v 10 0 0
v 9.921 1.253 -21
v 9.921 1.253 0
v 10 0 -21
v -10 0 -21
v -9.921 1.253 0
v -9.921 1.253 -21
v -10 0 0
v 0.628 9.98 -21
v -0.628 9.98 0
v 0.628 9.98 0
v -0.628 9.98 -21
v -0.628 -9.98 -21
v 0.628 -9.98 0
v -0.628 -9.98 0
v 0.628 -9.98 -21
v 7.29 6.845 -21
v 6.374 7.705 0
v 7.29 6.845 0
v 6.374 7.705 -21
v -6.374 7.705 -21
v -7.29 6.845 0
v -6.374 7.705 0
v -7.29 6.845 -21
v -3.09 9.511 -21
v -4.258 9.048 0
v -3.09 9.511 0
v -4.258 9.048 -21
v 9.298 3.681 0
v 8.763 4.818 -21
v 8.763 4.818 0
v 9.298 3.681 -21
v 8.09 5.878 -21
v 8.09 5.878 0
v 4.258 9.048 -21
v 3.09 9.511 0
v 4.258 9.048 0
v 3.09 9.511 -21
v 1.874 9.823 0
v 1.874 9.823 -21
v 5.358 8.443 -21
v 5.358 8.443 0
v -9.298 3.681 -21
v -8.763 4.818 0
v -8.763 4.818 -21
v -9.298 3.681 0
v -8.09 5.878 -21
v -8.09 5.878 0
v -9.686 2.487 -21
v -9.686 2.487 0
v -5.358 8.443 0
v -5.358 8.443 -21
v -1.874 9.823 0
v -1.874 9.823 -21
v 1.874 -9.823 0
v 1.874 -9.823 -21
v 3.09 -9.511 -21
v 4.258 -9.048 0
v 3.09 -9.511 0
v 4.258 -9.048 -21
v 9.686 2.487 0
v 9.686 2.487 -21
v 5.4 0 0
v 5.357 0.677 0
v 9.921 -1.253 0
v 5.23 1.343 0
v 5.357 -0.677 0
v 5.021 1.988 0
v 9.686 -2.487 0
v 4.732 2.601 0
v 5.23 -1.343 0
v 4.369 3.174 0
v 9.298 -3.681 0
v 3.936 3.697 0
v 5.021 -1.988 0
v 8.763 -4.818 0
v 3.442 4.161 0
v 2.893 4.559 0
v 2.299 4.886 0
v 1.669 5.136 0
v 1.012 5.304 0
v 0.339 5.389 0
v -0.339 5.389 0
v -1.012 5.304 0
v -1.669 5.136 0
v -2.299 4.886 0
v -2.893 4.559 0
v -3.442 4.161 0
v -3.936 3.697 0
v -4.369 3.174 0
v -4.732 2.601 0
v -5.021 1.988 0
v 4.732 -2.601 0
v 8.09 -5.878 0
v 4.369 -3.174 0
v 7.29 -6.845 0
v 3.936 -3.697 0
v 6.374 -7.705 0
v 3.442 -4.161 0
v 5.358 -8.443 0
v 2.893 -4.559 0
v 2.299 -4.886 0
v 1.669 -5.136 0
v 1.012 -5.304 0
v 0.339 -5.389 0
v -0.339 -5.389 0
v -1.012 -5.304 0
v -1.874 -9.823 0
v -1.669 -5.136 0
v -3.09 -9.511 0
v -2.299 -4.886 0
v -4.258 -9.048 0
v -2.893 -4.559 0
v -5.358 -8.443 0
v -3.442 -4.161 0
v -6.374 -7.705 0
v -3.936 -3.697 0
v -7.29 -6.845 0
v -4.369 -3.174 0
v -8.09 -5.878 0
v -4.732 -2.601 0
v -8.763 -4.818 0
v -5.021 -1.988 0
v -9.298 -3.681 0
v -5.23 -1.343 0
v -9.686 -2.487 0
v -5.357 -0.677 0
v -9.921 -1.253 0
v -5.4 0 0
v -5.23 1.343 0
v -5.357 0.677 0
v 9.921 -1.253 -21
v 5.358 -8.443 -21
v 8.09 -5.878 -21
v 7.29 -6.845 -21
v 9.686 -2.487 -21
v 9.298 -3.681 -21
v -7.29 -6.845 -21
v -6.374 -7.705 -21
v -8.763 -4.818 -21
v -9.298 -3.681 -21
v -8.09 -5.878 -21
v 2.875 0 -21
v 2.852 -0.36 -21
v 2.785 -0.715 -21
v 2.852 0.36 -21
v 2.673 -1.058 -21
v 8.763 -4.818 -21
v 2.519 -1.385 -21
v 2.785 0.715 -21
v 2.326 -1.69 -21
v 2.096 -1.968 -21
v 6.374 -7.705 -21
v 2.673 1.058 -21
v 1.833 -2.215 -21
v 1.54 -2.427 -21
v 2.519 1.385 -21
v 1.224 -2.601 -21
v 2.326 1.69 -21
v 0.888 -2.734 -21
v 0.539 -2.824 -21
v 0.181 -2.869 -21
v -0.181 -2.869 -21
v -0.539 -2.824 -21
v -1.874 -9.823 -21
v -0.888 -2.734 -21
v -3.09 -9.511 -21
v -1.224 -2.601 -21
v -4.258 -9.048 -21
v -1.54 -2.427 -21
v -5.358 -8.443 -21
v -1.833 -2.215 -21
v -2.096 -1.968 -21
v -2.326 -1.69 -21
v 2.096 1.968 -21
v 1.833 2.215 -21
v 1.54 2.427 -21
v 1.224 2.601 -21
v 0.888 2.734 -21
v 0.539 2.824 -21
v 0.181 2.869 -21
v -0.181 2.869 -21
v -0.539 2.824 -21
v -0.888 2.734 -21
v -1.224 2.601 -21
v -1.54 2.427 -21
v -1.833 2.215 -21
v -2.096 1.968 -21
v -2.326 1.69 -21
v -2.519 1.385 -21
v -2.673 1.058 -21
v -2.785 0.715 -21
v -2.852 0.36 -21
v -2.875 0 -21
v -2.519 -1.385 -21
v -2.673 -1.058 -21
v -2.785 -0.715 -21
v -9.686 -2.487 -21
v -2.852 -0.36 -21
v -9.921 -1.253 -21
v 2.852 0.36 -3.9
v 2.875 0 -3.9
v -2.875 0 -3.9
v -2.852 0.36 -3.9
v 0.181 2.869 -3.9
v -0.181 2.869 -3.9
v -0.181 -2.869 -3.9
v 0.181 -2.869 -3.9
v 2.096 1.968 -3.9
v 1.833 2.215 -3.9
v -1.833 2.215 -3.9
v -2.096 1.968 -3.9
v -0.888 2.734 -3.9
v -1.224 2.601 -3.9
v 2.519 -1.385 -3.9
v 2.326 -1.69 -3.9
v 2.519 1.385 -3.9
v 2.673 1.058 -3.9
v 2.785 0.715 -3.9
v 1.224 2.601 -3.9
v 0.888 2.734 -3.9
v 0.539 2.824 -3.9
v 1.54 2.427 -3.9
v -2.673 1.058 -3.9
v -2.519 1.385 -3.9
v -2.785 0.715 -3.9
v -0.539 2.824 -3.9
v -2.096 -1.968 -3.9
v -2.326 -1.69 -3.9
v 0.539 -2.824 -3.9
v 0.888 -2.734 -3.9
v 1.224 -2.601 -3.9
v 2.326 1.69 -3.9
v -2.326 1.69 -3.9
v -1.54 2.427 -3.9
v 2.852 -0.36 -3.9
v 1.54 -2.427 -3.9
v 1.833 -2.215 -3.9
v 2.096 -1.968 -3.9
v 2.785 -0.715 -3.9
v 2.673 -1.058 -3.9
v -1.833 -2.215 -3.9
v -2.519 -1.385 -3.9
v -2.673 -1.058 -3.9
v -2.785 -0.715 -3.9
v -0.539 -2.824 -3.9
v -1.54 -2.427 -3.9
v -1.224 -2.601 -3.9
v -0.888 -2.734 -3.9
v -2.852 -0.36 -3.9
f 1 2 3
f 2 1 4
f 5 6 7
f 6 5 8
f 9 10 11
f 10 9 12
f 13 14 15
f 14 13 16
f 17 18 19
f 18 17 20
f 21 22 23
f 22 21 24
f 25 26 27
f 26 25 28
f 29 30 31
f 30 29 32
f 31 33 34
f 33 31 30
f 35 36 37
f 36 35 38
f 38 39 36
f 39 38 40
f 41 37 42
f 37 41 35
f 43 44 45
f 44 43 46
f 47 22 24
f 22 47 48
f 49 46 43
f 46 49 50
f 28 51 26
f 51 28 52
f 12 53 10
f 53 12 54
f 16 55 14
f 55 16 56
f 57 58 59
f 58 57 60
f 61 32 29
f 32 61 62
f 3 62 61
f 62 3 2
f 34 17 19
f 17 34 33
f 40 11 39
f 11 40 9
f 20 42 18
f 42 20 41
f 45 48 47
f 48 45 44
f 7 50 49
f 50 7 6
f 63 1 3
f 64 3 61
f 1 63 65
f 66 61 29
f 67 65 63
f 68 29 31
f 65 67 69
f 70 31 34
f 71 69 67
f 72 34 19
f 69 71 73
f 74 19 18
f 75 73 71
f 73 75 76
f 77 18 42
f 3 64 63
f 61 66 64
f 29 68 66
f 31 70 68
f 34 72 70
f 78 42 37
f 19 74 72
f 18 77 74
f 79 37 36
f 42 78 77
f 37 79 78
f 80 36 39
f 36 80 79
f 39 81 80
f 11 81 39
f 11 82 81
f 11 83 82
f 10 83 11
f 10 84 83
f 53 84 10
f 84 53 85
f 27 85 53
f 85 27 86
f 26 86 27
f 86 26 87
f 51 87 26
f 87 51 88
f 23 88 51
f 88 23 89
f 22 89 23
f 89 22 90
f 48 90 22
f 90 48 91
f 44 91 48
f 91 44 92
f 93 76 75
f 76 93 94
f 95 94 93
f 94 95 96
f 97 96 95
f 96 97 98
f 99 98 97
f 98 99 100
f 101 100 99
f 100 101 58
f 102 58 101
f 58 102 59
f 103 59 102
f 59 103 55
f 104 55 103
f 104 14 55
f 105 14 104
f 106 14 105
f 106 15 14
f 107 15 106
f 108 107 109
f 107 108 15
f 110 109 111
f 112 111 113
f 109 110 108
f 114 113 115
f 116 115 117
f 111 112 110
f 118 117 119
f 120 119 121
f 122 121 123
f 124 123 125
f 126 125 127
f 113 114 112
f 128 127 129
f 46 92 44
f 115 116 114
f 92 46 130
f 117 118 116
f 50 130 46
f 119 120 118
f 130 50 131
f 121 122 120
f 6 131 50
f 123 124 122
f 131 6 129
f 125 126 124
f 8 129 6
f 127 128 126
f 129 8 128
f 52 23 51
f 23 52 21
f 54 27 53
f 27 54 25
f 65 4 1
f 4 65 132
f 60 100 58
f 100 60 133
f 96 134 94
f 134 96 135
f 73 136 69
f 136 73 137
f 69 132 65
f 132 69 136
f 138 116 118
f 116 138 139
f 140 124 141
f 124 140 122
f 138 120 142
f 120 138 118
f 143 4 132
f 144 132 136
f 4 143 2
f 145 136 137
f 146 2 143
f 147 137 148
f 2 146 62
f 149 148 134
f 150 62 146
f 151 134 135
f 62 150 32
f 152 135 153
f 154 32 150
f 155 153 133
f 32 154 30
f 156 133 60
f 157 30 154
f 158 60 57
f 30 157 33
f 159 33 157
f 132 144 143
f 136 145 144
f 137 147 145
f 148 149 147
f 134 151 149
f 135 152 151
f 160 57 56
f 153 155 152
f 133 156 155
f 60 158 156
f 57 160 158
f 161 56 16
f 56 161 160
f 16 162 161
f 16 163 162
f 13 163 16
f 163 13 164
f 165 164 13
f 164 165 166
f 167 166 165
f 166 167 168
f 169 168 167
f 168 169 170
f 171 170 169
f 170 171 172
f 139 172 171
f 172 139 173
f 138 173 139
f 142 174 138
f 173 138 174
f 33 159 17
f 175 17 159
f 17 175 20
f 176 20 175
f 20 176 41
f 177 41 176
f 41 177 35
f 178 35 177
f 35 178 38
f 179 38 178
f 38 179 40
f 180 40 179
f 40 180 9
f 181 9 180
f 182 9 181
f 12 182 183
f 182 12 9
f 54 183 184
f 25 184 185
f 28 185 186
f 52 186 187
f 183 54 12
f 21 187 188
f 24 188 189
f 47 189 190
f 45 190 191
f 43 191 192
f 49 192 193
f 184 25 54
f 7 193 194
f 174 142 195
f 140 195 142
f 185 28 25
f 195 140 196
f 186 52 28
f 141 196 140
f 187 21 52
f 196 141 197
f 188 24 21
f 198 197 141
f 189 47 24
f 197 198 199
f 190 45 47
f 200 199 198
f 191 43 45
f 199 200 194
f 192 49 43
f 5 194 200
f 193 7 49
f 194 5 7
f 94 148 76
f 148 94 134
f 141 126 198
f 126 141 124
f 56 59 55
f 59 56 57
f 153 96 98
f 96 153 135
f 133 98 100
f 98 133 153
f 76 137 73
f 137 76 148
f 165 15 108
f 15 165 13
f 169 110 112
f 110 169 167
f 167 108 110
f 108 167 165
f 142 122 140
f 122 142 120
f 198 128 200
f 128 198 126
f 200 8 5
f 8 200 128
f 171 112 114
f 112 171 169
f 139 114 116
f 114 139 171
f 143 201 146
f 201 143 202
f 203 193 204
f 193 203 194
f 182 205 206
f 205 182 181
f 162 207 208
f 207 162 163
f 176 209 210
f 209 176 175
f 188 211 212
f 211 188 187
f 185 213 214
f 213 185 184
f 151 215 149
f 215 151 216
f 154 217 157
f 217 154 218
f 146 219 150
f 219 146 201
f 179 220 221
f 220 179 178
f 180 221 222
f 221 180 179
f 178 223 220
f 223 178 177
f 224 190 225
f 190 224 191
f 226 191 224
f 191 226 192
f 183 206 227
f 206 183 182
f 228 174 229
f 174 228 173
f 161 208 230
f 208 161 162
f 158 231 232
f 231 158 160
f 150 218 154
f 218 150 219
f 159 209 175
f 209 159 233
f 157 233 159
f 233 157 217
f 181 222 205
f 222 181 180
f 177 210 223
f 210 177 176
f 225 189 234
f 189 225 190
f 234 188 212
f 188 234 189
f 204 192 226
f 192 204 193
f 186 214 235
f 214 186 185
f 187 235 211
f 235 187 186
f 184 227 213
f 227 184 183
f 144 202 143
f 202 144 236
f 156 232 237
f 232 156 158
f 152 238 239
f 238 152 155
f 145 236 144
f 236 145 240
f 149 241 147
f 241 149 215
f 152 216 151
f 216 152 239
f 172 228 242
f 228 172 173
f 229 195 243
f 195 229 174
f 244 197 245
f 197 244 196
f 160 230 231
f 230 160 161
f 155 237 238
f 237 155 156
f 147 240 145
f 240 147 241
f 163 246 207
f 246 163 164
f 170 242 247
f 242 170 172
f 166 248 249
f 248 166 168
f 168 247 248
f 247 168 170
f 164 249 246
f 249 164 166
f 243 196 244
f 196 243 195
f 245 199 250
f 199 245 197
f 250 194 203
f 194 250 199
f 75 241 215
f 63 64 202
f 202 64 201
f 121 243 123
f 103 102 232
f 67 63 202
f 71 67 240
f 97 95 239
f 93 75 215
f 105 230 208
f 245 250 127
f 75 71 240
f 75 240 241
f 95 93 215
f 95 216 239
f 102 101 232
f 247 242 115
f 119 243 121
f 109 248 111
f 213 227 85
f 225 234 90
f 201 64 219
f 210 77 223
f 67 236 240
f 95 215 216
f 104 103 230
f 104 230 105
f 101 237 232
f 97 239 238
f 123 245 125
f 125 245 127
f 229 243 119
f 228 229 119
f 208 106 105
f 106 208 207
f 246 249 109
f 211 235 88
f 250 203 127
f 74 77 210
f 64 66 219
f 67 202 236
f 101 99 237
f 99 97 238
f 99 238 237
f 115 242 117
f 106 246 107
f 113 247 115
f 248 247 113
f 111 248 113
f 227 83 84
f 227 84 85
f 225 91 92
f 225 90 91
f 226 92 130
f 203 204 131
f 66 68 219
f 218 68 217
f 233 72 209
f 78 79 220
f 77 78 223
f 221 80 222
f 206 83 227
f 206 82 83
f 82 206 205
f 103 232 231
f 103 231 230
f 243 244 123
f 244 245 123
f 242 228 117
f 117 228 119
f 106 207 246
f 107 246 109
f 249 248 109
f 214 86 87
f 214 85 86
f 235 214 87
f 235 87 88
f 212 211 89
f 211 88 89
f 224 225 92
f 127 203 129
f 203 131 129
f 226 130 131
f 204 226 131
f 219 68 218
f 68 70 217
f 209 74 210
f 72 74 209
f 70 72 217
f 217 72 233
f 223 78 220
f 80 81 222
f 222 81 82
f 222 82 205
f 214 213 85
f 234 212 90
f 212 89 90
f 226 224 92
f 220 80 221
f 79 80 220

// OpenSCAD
$fn = 50;

difference() {
	union() {
		translate(v = [0, 0, -21.0]) {
			cylinder(h = 21, r = 10.0);
		}
		#translate(v = [0, 0, -24.0]) {
			cylinder(h = 24, r = 2.875);
		}
	}
	union() {
		translate(v = [0, 0, 0]) {
			rotate(a = [0, 0, 0]) {
				difference() {
					union() {
						translate(v = [0, 0, -24.0]) {
							cylinder(h = 24, r = 2.6);
						}
						translate(v = [0, 0, -3.9]) {
							cylinder(h = 3.9, r1 = 2.875, r2 = 5.4);
						}
						translate(v = [0, 0, -24.0]) {
							cylinder(h = 24, r = 2.875);
						}
						translate(v = [0, 0, -24.0]) {
							cylinder(h = 24, r = 2.6);
						}
					}
					union();
				}
			}
		}
	}
}
